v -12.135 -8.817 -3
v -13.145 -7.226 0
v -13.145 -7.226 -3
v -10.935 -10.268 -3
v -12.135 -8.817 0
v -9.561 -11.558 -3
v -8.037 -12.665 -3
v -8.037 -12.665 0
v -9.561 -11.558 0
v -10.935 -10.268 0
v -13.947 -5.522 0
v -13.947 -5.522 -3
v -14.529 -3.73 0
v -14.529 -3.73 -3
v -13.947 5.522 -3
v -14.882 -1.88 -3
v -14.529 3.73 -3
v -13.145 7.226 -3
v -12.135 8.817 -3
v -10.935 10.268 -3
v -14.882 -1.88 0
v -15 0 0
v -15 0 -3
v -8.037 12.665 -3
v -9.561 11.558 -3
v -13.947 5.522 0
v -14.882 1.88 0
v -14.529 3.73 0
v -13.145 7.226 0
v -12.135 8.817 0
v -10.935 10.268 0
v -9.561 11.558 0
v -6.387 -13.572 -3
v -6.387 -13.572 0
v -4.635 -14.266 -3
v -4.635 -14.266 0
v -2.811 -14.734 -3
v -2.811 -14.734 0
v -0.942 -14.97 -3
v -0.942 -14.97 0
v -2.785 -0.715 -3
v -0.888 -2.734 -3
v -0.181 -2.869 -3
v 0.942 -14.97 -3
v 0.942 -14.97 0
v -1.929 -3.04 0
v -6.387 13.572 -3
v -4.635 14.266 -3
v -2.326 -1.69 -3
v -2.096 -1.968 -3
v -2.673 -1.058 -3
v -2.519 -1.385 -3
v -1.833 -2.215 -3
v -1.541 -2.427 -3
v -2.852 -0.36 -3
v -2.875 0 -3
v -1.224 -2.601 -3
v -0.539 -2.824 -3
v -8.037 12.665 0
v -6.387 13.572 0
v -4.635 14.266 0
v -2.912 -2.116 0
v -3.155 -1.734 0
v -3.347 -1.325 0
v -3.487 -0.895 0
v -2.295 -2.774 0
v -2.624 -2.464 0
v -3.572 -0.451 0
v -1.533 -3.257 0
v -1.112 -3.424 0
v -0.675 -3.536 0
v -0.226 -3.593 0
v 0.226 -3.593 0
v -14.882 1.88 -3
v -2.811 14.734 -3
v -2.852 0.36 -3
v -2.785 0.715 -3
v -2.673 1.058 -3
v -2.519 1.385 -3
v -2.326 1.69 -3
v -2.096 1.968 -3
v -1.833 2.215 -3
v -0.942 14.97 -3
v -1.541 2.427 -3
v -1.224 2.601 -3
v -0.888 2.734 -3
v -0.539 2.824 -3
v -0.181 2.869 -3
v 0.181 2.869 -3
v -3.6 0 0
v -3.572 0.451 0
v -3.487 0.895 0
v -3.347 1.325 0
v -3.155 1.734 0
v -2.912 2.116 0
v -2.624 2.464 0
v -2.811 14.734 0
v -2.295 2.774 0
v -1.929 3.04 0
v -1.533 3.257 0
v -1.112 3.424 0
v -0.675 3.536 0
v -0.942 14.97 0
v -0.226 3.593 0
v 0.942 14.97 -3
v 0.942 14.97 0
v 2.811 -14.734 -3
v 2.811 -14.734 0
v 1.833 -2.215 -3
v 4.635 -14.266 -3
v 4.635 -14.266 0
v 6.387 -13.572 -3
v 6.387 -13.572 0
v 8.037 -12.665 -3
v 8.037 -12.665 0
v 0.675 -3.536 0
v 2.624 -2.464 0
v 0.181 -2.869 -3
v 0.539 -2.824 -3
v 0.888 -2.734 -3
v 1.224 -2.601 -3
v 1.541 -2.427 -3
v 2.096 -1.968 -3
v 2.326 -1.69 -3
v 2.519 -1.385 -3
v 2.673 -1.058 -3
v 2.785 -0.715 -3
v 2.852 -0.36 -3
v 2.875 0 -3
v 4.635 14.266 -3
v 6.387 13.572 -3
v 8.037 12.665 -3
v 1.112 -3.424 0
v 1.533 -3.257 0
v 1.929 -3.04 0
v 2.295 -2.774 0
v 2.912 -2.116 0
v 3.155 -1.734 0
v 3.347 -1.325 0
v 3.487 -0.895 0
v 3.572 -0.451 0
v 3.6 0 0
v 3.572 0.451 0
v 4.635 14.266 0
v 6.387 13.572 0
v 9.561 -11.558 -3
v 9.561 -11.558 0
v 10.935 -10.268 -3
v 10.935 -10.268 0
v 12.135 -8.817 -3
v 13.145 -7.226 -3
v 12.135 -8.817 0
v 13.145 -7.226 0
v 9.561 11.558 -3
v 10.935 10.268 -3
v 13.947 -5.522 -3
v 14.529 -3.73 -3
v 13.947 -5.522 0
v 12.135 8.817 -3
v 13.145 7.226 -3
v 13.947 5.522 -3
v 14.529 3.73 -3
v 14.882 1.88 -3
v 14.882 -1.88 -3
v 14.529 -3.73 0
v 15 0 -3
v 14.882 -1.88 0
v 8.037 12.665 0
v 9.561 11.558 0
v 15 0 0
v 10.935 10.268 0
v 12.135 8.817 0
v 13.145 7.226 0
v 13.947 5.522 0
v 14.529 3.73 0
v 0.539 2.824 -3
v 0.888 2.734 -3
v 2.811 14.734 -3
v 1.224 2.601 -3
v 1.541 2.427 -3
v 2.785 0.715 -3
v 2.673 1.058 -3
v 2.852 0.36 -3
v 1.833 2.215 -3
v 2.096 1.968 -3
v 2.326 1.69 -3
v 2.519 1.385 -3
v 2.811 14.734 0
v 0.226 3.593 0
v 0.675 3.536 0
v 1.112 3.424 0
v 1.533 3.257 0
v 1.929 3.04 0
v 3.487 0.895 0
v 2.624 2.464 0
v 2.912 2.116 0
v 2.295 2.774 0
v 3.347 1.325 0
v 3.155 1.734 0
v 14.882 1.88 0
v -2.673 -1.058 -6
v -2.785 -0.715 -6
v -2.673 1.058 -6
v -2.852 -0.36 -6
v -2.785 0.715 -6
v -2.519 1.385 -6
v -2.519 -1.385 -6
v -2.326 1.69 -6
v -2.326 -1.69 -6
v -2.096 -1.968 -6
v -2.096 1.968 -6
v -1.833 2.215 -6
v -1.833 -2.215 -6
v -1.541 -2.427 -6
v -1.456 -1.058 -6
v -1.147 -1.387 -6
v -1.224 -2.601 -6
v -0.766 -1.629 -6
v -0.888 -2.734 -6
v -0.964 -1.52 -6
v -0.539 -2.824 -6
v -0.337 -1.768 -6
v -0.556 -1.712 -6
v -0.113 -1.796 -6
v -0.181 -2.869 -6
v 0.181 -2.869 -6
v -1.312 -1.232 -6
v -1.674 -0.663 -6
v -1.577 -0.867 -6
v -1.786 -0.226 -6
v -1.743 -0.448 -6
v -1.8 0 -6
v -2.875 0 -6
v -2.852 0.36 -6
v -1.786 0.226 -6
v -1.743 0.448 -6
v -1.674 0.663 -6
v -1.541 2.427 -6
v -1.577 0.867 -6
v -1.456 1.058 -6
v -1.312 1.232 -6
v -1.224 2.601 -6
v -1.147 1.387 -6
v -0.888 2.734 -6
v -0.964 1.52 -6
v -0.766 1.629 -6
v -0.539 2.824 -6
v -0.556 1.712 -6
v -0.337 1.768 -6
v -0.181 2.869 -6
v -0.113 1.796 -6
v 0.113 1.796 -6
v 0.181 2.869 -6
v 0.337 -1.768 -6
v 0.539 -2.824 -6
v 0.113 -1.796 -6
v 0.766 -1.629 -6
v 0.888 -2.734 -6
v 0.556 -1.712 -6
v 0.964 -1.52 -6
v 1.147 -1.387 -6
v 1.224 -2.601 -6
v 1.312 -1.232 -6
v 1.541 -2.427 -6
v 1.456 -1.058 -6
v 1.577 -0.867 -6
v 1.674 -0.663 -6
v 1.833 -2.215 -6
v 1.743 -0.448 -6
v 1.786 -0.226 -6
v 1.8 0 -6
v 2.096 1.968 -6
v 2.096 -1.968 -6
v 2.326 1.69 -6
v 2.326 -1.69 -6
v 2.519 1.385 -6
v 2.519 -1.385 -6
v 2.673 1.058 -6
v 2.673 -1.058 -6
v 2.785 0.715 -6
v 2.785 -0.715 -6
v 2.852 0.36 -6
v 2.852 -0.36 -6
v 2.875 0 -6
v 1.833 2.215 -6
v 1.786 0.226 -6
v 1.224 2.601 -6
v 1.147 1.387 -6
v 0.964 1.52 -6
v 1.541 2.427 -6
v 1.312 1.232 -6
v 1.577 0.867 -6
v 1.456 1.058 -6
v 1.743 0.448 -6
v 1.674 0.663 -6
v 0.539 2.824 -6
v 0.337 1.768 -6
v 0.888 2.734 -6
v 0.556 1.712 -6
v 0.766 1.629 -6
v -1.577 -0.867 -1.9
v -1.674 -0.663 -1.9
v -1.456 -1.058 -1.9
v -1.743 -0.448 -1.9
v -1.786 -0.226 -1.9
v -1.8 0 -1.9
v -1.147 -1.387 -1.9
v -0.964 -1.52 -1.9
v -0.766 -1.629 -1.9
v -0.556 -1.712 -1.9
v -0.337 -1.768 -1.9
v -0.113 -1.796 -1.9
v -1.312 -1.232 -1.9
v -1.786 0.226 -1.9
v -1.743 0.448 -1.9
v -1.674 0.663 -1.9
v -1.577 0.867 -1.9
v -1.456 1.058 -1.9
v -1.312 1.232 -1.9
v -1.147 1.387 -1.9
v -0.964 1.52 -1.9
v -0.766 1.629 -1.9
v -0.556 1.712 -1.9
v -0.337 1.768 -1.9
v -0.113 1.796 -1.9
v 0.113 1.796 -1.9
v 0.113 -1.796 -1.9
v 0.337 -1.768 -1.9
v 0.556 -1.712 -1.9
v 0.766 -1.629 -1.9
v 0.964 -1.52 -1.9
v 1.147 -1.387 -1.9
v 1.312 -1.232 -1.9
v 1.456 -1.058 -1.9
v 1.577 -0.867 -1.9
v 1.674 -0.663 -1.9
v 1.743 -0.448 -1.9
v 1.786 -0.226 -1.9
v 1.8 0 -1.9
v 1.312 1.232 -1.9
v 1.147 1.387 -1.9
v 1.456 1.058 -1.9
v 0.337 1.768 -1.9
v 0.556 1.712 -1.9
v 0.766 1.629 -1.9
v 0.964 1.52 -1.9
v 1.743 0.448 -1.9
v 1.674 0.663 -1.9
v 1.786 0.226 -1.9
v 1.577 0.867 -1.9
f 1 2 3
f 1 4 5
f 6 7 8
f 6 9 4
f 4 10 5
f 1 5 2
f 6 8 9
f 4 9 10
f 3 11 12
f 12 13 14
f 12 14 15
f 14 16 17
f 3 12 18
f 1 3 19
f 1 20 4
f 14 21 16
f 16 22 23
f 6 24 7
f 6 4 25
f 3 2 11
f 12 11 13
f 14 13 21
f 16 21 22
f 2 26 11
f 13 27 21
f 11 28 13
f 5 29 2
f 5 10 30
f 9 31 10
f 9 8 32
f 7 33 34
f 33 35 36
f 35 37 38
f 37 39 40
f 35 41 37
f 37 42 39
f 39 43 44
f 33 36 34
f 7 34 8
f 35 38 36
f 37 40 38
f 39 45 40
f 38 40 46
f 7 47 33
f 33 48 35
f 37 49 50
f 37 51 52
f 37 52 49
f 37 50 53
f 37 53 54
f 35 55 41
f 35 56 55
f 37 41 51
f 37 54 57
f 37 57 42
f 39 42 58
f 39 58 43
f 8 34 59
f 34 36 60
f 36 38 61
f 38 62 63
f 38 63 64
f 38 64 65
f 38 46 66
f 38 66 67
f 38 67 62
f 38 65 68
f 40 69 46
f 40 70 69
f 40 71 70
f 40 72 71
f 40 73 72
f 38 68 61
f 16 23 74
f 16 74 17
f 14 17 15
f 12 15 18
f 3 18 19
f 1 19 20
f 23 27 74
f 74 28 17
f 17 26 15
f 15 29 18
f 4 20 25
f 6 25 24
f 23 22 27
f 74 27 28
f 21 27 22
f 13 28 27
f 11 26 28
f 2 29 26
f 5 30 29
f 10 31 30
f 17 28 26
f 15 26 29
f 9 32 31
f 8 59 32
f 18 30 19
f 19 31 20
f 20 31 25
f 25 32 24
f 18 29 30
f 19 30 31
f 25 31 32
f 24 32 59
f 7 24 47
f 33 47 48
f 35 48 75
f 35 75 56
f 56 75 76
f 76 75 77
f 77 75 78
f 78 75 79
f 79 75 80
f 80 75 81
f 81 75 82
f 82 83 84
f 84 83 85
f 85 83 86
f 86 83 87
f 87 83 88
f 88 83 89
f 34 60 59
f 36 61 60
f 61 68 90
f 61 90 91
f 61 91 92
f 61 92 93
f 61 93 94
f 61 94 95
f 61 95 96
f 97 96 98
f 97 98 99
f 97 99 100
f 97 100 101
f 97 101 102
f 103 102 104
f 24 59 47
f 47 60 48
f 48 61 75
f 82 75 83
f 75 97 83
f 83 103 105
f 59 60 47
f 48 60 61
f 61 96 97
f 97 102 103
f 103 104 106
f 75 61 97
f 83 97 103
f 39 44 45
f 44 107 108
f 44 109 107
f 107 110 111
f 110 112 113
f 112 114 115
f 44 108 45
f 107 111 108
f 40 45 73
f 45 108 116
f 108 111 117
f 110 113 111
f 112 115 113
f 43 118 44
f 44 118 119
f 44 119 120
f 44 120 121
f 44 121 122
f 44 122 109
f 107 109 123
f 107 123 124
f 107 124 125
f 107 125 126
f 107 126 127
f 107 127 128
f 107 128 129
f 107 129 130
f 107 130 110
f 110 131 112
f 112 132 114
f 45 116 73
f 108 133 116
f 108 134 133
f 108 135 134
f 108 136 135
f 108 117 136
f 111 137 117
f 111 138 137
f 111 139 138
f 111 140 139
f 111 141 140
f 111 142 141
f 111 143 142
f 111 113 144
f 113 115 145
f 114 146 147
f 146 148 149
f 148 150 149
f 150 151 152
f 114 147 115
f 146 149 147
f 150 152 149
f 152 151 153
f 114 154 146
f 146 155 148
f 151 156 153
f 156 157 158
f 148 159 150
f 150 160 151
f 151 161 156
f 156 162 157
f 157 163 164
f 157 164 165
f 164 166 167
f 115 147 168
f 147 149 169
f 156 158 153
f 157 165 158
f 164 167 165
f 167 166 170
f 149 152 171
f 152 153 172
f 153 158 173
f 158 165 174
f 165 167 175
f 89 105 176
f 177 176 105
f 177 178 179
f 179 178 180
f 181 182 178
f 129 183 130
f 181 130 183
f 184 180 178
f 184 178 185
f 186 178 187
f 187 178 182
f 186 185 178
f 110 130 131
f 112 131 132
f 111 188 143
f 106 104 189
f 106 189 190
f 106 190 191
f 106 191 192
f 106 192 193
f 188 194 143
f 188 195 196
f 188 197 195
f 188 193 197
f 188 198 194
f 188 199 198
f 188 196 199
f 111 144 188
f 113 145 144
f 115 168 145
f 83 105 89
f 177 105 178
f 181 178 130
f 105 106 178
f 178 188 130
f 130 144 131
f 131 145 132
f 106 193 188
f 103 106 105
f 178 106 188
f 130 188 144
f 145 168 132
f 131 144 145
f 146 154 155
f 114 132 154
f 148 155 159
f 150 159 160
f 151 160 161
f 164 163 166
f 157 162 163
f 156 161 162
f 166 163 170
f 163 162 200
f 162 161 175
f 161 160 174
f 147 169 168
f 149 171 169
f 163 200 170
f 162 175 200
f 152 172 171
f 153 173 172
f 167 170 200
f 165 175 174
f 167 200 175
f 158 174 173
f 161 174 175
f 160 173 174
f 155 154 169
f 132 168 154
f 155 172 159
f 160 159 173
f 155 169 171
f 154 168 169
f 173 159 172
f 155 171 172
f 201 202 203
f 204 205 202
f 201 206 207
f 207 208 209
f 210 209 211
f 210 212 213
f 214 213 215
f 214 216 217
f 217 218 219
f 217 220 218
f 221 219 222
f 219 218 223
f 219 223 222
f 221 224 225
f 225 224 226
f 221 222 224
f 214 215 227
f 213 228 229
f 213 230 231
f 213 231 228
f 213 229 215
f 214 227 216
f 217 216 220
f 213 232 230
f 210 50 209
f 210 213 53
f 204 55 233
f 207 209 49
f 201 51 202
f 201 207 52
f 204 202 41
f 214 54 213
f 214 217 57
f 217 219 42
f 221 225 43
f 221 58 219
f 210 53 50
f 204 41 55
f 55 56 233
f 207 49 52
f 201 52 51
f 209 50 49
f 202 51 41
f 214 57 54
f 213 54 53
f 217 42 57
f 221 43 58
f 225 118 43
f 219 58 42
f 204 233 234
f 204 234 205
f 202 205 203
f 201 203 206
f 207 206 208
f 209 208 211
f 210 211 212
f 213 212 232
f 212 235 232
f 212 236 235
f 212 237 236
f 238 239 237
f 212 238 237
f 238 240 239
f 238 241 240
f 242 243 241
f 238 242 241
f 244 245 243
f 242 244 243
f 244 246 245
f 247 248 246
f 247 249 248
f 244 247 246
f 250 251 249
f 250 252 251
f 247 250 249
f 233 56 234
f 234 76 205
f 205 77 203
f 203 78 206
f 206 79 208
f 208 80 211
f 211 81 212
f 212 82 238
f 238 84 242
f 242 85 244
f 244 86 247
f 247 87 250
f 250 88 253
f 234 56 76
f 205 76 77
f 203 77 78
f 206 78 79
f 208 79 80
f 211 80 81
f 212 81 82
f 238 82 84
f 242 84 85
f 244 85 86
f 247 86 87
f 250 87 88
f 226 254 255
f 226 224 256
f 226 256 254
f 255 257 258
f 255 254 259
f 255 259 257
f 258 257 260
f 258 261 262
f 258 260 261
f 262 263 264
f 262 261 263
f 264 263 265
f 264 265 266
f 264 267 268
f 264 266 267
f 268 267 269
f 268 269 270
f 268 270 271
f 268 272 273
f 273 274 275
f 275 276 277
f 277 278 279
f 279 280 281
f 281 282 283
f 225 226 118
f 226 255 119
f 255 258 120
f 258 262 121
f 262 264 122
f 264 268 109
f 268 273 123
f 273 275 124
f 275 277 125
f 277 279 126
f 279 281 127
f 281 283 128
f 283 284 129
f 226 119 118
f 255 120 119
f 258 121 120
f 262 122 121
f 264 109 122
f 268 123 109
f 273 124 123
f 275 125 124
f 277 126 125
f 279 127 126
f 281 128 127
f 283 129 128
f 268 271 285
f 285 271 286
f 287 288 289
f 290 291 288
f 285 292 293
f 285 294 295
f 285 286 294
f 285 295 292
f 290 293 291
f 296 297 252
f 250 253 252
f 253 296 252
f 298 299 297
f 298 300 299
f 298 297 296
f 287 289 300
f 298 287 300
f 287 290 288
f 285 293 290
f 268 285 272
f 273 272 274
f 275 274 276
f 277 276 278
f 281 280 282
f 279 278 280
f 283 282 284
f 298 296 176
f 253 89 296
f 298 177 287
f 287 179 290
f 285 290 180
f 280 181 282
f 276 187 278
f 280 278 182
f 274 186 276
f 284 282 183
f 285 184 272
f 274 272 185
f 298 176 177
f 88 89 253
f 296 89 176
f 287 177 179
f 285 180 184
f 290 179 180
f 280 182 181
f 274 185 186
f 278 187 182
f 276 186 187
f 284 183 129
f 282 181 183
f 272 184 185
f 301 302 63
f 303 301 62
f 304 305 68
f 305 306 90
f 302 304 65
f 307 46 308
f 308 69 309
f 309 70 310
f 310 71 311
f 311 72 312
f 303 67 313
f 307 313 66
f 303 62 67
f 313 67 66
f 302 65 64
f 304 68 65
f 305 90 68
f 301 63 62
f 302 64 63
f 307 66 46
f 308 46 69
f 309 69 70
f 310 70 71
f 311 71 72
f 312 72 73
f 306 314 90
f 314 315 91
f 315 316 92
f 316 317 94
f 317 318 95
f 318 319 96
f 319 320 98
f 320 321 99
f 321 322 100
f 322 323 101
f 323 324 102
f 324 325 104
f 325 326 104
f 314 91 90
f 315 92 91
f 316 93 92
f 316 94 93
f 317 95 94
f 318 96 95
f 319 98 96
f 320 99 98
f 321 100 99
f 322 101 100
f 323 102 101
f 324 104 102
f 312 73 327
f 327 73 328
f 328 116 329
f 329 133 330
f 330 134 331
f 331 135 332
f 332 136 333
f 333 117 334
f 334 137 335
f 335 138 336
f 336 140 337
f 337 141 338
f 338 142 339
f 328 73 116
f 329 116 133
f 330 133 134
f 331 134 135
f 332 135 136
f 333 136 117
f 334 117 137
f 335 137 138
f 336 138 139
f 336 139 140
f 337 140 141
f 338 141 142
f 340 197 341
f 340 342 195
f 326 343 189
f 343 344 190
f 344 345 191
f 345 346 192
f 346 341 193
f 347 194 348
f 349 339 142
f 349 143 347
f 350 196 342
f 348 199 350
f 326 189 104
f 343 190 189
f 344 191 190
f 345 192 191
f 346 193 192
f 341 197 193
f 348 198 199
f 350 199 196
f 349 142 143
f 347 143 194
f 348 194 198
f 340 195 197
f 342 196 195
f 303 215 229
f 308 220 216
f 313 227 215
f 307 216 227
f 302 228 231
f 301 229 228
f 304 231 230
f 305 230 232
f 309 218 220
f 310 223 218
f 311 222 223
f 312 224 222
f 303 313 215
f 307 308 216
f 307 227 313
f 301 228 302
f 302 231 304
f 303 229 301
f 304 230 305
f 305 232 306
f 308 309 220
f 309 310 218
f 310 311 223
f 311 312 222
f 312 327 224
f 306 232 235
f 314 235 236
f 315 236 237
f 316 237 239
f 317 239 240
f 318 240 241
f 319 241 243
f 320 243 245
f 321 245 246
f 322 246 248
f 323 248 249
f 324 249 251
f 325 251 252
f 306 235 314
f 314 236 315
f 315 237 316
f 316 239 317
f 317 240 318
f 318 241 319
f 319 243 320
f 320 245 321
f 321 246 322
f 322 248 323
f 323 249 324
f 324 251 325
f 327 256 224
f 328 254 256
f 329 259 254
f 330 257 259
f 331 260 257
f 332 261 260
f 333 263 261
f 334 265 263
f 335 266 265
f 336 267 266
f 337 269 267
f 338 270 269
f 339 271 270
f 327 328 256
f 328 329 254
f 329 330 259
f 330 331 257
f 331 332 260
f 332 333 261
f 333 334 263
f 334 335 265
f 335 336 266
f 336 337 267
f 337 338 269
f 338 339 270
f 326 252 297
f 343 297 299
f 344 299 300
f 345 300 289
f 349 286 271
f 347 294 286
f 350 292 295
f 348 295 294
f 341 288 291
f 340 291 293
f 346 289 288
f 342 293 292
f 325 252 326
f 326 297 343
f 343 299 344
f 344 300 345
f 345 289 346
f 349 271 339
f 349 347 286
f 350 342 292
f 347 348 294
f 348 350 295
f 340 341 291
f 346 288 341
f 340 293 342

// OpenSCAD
$fn = 50;

difference() {
	union() {
		translate(v = [0, 0, -3.0]) {
			cylinder(h = 3, r = 15.0);
		}
		#translate(v = [0, 0, -6.0]) {
			cylinder(h = 6, r = 2.875);
		}
	}
	union() {
		translate(v = [0, 0, 0]) {
			rotate(a = [0, 0, 0]) {
				difference() {
					union() {
						translate(v = [0, 0, -6.0]) {
							cylinder(h = 6, r = 1.5);
						}
						translate(v = [0, 0, -1.9]) {
							cylinder(h = 1.9, r1 = 1.8, r2 = 3.6);
						}
						translate(v = [0, 0, -6.0]) {
							cylinder(h = 6, r = 1.8);
						}
						translate(v = [0, 0, -6.0]) {
							cylinder(h = 6, r = 1.5);
						}
					}
					union();
				}
			}
		}
	}
}
